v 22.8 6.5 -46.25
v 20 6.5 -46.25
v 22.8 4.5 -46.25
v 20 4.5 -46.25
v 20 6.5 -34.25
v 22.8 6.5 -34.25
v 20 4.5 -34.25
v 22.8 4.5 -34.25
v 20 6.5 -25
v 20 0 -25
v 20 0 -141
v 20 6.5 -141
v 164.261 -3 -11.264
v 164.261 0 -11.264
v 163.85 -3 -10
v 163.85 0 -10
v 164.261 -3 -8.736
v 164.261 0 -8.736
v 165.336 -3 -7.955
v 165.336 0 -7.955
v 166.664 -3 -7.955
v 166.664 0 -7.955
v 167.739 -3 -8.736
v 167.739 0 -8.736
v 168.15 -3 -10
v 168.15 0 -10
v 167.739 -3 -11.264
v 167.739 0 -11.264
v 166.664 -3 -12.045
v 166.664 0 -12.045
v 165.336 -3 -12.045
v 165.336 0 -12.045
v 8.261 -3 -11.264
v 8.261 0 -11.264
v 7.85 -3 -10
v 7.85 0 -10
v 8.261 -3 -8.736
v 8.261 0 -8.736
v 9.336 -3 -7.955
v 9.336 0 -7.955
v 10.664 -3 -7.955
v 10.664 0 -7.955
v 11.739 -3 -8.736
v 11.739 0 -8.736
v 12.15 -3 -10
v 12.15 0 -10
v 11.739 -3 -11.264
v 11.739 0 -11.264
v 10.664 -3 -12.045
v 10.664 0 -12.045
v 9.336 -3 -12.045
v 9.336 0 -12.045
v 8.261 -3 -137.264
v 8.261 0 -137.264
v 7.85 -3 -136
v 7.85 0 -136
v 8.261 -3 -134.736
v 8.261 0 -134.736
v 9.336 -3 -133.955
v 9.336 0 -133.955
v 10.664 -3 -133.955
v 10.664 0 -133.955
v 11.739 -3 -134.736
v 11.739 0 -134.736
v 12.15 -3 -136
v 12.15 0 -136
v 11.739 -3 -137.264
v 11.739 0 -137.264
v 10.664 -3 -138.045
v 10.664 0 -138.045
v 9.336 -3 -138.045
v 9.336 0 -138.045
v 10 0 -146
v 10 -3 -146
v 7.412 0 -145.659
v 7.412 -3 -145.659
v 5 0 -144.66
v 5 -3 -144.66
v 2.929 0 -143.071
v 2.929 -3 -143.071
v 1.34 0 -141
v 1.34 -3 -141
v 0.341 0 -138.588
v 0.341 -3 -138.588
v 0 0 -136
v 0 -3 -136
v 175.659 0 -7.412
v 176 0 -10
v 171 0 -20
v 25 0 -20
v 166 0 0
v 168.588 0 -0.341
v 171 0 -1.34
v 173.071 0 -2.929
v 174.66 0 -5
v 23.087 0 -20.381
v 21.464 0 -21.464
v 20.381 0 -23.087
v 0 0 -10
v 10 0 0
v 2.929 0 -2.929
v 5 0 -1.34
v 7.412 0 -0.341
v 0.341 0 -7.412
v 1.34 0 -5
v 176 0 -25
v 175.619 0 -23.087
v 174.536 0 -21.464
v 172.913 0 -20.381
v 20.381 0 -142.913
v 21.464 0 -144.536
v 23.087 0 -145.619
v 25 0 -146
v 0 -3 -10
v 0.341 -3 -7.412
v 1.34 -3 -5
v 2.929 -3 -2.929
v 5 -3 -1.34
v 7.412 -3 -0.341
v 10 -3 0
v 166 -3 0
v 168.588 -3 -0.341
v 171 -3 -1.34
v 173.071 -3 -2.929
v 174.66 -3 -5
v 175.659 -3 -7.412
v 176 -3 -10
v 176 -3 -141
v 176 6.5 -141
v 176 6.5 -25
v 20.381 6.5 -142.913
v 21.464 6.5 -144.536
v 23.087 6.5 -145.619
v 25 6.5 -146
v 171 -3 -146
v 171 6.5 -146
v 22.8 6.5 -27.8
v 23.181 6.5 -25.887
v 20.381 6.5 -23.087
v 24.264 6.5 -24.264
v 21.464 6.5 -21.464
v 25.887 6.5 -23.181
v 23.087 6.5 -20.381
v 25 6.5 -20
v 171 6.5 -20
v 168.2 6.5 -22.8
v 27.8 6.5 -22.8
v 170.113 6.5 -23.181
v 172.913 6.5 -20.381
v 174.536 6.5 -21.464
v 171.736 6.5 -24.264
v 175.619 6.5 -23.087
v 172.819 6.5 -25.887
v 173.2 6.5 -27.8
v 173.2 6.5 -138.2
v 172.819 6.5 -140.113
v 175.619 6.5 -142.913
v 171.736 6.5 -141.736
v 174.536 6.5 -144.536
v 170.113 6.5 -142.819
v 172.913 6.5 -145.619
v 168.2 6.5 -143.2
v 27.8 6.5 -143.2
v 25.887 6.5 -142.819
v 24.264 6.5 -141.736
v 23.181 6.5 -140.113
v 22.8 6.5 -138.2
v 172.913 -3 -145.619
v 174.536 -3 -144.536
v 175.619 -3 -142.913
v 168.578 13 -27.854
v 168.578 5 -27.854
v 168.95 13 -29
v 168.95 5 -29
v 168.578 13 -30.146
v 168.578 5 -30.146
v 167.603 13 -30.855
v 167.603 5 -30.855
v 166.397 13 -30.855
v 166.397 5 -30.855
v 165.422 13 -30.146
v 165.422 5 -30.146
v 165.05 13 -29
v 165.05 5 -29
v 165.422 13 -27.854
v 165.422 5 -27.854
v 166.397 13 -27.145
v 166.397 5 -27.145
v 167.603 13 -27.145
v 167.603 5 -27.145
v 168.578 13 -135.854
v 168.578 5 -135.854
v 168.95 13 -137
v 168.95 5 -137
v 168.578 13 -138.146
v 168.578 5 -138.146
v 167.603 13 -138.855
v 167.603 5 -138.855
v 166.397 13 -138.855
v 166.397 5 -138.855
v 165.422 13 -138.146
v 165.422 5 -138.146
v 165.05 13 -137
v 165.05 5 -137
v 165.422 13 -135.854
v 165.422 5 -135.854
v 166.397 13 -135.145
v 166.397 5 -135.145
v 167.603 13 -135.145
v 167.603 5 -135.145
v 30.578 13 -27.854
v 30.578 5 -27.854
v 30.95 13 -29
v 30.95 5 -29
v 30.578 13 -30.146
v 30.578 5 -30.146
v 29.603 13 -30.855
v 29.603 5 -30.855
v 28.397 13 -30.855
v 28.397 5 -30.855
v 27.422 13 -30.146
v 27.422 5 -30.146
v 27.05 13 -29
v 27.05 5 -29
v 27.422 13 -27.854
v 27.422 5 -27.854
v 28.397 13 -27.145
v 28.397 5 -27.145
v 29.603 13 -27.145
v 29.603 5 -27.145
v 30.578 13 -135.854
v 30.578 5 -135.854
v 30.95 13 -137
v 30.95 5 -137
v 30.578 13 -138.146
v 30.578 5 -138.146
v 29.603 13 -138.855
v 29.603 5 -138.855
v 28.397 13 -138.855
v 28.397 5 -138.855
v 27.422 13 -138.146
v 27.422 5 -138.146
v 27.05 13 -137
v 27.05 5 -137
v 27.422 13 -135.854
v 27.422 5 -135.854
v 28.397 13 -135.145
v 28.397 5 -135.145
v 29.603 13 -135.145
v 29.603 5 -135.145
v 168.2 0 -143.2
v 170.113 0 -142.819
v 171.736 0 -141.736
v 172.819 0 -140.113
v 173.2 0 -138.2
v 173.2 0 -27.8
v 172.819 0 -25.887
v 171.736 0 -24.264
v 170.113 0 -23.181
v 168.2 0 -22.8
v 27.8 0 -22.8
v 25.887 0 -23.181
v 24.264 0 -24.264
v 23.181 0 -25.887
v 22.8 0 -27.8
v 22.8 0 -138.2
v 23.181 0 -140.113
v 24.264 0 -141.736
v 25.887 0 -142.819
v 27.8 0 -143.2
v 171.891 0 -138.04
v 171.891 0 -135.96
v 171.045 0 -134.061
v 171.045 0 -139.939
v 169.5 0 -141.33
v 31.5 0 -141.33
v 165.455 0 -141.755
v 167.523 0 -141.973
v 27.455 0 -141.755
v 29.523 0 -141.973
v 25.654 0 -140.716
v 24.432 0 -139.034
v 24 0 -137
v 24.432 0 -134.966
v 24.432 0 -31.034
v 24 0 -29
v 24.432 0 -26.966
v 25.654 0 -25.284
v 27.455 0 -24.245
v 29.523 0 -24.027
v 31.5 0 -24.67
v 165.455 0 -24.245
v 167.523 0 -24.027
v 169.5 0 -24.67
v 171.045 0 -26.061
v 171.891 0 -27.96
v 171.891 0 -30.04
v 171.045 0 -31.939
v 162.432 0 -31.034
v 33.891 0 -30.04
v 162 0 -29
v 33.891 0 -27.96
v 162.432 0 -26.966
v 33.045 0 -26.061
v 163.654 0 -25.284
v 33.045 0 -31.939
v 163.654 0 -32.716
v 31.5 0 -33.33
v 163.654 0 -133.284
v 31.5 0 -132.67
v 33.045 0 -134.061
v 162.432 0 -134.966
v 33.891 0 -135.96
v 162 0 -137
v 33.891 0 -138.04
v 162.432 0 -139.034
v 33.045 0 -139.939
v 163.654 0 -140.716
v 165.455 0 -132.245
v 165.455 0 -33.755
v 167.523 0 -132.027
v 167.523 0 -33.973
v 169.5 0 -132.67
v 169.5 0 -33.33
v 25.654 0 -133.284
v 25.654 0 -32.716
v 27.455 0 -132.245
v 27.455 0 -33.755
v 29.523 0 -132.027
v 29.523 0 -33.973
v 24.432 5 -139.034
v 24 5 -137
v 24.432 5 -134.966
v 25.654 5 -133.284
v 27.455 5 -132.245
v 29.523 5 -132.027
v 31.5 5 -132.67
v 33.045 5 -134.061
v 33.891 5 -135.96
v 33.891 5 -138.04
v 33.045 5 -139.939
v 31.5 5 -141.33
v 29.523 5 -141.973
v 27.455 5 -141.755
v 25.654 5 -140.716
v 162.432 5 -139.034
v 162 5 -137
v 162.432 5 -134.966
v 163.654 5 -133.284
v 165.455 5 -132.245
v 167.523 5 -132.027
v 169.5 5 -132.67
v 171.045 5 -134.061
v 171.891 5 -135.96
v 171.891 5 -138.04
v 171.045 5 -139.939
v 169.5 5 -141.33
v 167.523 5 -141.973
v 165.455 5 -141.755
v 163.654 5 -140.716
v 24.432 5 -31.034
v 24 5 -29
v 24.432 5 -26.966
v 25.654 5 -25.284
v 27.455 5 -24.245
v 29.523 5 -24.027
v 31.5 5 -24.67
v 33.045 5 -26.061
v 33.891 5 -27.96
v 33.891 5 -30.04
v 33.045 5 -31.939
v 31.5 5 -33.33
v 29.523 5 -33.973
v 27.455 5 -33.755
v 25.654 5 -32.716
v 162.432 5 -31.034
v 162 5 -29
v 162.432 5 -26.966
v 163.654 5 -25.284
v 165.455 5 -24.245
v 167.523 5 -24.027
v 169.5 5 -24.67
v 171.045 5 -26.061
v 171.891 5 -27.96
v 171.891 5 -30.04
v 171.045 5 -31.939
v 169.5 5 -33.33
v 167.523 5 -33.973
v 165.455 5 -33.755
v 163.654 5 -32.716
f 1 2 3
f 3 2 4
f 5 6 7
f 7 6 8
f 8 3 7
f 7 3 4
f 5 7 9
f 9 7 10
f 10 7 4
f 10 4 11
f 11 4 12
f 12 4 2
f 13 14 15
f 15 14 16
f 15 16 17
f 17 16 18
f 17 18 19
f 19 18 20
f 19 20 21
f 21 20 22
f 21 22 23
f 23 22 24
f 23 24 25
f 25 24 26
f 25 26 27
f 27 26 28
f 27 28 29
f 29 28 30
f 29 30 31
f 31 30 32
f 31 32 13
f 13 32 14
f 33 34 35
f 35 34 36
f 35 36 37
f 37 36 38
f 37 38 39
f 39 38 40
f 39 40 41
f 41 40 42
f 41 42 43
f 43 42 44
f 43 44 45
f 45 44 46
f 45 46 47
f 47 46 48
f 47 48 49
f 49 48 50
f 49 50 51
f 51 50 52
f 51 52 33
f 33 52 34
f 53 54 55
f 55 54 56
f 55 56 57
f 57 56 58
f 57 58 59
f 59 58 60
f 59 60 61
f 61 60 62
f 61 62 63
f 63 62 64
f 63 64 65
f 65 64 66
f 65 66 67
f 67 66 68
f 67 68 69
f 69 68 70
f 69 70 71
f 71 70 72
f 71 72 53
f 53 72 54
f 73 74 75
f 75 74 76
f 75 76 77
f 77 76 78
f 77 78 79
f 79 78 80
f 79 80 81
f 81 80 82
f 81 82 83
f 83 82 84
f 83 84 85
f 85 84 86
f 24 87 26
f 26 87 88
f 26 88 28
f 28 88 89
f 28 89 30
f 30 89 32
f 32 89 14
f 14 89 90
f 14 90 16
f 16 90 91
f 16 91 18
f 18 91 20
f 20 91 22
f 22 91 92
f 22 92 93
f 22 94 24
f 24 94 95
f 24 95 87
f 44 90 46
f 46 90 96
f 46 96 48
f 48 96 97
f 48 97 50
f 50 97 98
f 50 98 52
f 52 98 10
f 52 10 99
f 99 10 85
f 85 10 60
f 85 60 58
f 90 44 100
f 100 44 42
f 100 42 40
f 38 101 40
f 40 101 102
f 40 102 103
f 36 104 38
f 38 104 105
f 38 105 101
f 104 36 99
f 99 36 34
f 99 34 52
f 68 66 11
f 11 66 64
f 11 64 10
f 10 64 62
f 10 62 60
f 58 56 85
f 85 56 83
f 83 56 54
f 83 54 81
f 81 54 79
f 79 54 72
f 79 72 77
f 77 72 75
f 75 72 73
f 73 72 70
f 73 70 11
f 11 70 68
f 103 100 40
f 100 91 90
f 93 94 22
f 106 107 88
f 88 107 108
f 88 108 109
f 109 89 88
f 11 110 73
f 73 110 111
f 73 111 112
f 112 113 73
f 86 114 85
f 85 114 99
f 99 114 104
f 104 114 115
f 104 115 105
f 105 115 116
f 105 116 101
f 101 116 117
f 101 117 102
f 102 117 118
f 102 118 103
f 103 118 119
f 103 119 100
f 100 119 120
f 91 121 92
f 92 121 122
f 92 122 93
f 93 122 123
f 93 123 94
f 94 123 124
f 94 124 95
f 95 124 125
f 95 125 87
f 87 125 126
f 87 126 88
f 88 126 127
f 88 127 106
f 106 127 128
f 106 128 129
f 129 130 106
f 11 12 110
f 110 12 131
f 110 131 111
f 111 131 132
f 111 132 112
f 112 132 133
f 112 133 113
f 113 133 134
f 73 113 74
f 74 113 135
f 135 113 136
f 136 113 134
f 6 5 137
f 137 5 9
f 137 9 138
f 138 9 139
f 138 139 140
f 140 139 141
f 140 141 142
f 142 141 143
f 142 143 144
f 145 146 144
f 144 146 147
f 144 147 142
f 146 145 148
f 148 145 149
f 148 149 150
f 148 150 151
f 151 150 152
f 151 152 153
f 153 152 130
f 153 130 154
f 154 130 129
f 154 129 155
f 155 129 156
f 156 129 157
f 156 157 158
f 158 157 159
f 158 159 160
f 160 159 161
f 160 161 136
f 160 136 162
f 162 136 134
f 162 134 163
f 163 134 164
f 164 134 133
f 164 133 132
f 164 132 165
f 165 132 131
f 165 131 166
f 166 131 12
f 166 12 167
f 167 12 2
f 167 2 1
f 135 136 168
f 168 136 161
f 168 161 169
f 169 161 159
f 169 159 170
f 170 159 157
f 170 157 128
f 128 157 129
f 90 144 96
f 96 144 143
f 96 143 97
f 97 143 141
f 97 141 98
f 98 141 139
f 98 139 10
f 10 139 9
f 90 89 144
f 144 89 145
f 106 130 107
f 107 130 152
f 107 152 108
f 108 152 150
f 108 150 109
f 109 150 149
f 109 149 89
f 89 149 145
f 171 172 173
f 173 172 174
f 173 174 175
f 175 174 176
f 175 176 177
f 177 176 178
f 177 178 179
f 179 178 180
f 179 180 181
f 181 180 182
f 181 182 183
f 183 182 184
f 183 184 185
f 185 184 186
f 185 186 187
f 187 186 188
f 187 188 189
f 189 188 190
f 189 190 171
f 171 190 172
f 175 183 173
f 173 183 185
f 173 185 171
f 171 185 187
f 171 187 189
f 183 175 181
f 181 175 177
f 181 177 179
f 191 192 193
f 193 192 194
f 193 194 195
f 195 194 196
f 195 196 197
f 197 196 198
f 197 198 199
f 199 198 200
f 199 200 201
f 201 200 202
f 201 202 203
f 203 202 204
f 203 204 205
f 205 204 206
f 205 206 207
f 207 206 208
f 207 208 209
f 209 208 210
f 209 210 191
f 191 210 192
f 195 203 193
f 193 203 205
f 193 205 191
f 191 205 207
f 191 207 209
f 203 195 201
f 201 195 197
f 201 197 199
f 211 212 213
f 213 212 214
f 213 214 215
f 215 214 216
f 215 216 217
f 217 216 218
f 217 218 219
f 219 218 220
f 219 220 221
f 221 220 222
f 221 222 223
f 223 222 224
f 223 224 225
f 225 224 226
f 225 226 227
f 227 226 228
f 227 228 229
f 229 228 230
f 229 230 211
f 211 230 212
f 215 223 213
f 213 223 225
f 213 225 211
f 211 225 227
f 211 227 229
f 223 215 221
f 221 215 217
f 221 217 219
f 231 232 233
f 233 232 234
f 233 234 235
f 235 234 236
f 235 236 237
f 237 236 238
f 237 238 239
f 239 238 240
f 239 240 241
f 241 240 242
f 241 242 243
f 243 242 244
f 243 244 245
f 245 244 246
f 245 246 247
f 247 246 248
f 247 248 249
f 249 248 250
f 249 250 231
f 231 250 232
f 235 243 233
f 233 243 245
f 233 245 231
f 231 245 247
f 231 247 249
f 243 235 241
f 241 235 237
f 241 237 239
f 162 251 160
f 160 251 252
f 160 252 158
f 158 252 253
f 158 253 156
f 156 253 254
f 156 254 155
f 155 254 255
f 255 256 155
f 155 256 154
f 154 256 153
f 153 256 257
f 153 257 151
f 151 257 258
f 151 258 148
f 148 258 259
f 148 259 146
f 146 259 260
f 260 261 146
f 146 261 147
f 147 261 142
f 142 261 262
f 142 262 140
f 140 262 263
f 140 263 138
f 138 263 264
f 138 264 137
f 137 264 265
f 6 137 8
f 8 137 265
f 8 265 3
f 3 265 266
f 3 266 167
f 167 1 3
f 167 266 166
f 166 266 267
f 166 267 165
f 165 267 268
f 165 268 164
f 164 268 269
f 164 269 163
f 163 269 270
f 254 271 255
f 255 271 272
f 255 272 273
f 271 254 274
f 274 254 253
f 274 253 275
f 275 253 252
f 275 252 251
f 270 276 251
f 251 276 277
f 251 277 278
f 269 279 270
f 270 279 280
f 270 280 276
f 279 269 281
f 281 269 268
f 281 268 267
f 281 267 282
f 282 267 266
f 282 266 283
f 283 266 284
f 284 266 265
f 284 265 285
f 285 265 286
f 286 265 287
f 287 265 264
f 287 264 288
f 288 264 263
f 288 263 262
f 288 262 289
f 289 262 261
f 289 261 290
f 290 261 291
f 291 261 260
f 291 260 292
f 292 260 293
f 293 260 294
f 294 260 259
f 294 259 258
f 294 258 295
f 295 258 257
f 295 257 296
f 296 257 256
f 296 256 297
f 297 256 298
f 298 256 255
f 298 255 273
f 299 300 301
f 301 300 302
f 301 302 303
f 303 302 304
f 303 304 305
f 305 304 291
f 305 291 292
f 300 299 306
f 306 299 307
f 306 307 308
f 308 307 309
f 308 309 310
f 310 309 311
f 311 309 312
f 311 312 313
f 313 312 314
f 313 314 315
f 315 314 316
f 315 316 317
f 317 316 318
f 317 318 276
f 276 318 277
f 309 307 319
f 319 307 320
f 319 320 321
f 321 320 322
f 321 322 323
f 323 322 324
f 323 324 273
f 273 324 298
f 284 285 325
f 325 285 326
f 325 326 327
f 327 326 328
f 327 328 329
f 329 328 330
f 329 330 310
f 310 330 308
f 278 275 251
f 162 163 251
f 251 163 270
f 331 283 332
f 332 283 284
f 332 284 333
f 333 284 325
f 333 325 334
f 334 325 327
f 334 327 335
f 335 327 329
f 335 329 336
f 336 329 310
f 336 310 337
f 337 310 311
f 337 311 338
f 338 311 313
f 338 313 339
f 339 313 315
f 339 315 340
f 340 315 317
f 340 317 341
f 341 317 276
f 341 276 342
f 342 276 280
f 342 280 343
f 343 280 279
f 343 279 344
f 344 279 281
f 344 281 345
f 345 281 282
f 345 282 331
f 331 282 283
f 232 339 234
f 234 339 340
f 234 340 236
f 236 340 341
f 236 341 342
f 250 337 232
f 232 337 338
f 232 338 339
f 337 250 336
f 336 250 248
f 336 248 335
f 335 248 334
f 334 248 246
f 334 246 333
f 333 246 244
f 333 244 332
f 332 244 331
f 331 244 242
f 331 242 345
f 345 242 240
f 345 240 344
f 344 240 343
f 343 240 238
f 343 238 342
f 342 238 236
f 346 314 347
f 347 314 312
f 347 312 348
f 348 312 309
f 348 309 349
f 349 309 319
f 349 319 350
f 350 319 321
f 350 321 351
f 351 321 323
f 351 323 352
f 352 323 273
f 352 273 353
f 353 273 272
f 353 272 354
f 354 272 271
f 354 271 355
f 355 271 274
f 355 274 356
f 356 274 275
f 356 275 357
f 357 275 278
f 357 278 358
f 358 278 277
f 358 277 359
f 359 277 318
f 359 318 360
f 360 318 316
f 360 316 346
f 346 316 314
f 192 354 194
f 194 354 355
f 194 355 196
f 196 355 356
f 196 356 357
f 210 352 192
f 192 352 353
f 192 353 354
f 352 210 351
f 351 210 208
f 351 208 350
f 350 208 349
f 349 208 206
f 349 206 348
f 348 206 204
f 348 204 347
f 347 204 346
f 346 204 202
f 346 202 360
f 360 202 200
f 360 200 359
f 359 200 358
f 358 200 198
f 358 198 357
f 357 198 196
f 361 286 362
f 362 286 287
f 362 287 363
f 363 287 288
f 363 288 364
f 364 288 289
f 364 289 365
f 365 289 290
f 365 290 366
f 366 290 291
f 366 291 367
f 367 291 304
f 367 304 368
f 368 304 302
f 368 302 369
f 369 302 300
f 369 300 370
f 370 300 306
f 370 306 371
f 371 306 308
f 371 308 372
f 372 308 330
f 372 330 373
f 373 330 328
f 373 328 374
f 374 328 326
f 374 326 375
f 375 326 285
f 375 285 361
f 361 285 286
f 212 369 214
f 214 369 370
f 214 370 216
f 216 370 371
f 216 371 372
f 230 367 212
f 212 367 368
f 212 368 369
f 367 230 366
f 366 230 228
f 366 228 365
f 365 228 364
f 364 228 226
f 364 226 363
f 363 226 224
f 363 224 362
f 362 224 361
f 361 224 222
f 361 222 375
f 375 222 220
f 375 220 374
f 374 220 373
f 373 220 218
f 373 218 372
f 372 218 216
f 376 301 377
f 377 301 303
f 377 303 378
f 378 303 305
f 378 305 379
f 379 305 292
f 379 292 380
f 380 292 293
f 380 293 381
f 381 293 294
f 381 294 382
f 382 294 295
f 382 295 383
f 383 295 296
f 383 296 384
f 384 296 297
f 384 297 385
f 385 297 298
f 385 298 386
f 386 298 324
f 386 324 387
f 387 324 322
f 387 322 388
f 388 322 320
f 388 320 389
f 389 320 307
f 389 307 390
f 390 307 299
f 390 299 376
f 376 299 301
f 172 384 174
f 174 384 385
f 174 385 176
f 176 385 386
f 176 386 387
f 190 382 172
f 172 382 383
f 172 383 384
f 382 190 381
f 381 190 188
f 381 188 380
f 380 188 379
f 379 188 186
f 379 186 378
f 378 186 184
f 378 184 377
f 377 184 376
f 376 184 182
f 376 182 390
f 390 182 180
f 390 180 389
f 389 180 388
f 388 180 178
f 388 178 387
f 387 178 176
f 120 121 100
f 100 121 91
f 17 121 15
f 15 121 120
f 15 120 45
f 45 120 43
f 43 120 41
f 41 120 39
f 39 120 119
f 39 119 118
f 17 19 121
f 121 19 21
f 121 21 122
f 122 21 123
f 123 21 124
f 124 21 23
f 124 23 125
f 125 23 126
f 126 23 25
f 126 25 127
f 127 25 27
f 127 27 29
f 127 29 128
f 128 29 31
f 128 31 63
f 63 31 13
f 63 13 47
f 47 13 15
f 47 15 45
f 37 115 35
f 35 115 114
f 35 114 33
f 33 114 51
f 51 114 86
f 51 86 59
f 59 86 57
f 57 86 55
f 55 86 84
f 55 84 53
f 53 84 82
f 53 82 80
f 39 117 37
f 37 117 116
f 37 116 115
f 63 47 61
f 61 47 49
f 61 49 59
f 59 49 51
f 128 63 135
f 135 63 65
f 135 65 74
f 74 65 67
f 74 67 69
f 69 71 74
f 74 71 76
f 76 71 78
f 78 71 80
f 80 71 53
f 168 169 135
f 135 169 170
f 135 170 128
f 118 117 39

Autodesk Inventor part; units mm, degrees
ref_plane "YZ Plane" through (0, 0, 0) normal (1, 0, 0) x (0, 1, 0)
ref_plane "XZ Plane" through (0, 0, 0) normal (0, 1, 0) x (-1, 0, 0)
ref_plane "XY Plane" through (0, 0, 0) normal (0, 0, 1) x (1, 0, 0)
sketch "Sketch1" plane through (0, 0, 0) normal (0, 1, 0) x (-1, 0, 0)
  line L0 (0, 0) -> (-176, 0)
  line L1 (-176, 0) -> (-176, -146)
  line L2 (-176, -146) -> (0, -146)
  line L3 (0, -146) -> (0, 0)
  line L4 (0, 0) -> (-176, 0)
  line L5 (-176, 0) -> (-176, -20)
  line L6 (-176, -20) -> (0, -20)
  line L7 (0, -20) -> (0, 0)
  line L8 (0, -146) -> (-20, -146)
  line L9 (-20, -146) -> (-20, 0)
  line L10 (-20, 0) -> (0, 0)
  line L11 (0, 0) -> (0, -146)
  line L12 (-20, -146) -> (-176, -146)
  line L13 (-176, -146) -> (-176, -143)
  line L14 (-176, -143) -> (-20, -143)
  line L15 (-20, -143) -> (-20, -146)
  line L16 (-20, -146) -> (-23, -146)
  line L17 (-23, -146) -> (-23, -20)
  line L18 (-23, -20) -> (-20, -20)
  line L19 (-20, -20) -> (-20, -146)
  line L20 (-20, -20) -> (-176, -20)
  line L21 (-176, -20) -> (-176, -23)
  line L22 (-176, -23) -> (-20, -23)
  line L23 (-20, -23) -> (-20, -20)
  line L24 (-176, -20) -> (-173, -20)
  line L25 (-173, -20) -> (-173, -146)
  line L26 (-173, -146) -> (-176, -146)
  line L27 (-176, -146) -> (-176, -20)
  line L28 (-20, -146) -> (-176, -146)
  line L29 (-176, -146) -> (-176, -143.2)
  line L30 (-176, -143.2) -> (-20, -143.2)
  line L31 (-20, -143.2) -> (-20, -146)
  line L32 (-176, -146) -> (-173.2, -146)
  line L33 (-173.2, -146) -> (-173.2, -20)
  line L34 (-173.2, -20) -> (-176, -20)
  line L35 (-176, -20) -> (-176, -146)
  line L36 (-176, -20) -> (-20, -20)
  line L37 (-20, -20) -> (-20, -22.8)
  line L38 (-20, -22.8) -> (-176, -22.8)
  line L39 (-176, -22.8) -> (-176, -20)
  line L40 (-20, -20) -> (-22.8, -20)
  line L41 (-22.8, -20) -> (-22.8, -146)
  line L42 (-22.8, -146) -> (-20, -146)
  line L43 (-20, -146) -> (-20, -20)
  line L44 (-23, -143) -> (-29, -143)
  line L45 (-29, -143) -> (-29, -137)
  line L46 (-29, -137) -> (-23, -137)
  line L47 (-23, -137) -> (-23, -143)
  line L48 (-173, -143) -> (-167, -143)
  line L49 (-167, -143) -> (-167, -137)
  line L50 (-167, -137) -> (-173, -137)
  line L51 (-173, -137) -> (-173, -143)
  line L52 (-173, -23) -> (-167, -23)
  line L53 (-167, -23) -> (-167, -29)
  line L54 (-167, -29) -> (-173, -29)
  line L55 (-173, -29) -> (-173, -23)
  line L56 (-23, -23) -> (-29, -23)
  line L57 (-29, -23) -> (-29, -29)
  line L58 (-29, -29) -> (-23, -29)
  line L59 (-23, -29) -> (-23, -23)
  line L60 (-23, -143) -> (-173, -143)
  line L61 (-173, -143) -> (-173, -23)
  line L62 (-173, -23) -> (-23, -23)
  line L63 (-23, -23) -> (-23, -143)
  circle A0 centre (-29, -137) radius 5
  circle A1 centre (-167, -137) radius 5
  circle A2 centre (-167, -29) radius 5
  circle A3 centre (-29, -29) radius 5
  line L64 (-22.8, -143.2) -> (-27.8, -143.2)
  line L65 (-27.8, -143.2) -> (-27.8, -138.2)
  line L66 (-27.8, -138.2) -> (-22.8, -138.2)
  line L67 (-22.8, -138.2) -> (-22.8, -143.2)
  line L68 (-173.2, -143.2) -> (-168.2, -143.2)
  line L69 (-168.2, -143.2) -> (-168.2, -138.2)
  line L70 (-168.2, -138.2) -> (-173.2, -138.2)
  line L71 (-173.2, -138.2) -> (-173.2, -143.2)
  line L72 (-173.2, -22.8) -> (-168.2, -22.8)
  line L73 (-168.2, -22.8) -> (-168.2, -27.8)
  line L74 (-168.2, -27.8) -> (-173.2, -27.8)
  line L75 (-173.2, -27.8) -> (-173.2, -22.8)
  line L76 (-22.8, -22.8) -> (-27.8, -22.8)
  line L77 (-27.8, -22.8) -> (-27.8, -27.8)
  line L78 (-27.8, -27.8) -> (-22.8, -27.8)
  line L79 (-22.8, -27.8) -> (-22.8, -22.8)
  circle A4 centre (-27.8, -138.2) radius 5
  circle A5 centre (-168.2, -138.2) radius 5
  circle A6 centre (-168.2, -27.8) radius 5
  circle A7 centre (-27.8, -27.8) radius 5
  dimension "d4" = 176
  dimension "d5" = 146
  dimension "d6" = 20
  dimension "d7" = 20
  dimension "d8" = 3
  dimension "d9" = 3
  dimension "d10" = 3
  dimension "d11" = 3
  dimension "d12" = 2.8
  dimension "d13" = 2.8
  dimension "d14" = 2.8
  dimension "d15" = 2.8
  dimension "d16" = 6
  dimension "d17" = 6
  dimension "d18" = 6
  dimension "d19" = 6
  dimension "d20" = 6
  dimension "d21" = 6
  dimension "d22" = 6
  dimension "d23" = 6
  dimension "d24" = 10
  dimension "d25" = 10
  dimension "d26" = 10
  dimension "d27" = 10
  dimension "d28" = 5
  dimension "d29" = 5
  dimension "d30" = 5
  dimension "d31" = 5
  dimension "d32" = 5
  dimension "d33" = 5
  dimension "d34" = 5
  dimension "d35" = 5
extrude "Extrusion1" add sketch "Sketch1" against normal blind 3
extrude "Extrusion2" add sketch "Sketch1" along normal blind 5 contours L77 L78 A3 L58 L57 | A3 L78 L77 | A7 A3 | A3 L57 L58 A7 | L74 L73 A2 L53 L54 | A2 L73 L74 | A6 A2 | A2 L54 L53 A6 | L66 L65 A0 L45 L46 | A0 L65 L66 | A4 A0 | A0 L46 L45 A4 | L70 L69 A1 | A1 L50 L49 L69 L70 | A5 A1 L49 L50 | A1 A5
extrude "Extrusion4" add sketch "Sketch1" along normal blind 6.5 contours L9 L38 L41 L6 | L6 L33 L38 L1 | L41 L38 L17 L6 | L9 L22 L41 L38 | L2 L41 L30 L9 | L38 L33 L22 L1 | L6 L25 L38 L33 | L17 L38 L25 L6 | L9 L14 L41 L22 | L2 L17 L30 L41 | L30 L41 L14 L9 | L22 L33 L14 L1 | L2 L25 L30 L17 | L14 L33 L30 L1 | L2 L33 L30 L25 | L30 L33 L2 L1
fillet "Fillet1" radius 5 4 edges at (22.8, 3.25, -143.2) (22.8, 3.25, -22.8) (173.2, 3.25, -22.8) (173.2, 3.25, -143.2)
sketch "Sketch2" plane through (29, 5, -137) normal (0, 1, 0) x (1, 0, 0)
  circle A0 centre (0, 0) radius 1.95
  circle A1 centre (138, 0) radius 5 projected
  circle A2 centre (138, 0) radius 1.95
  circle A3 centre (138, -108) radius 5 projected
  circle A4 centre (138, -108) radius 1.95
  circle A5 centre (0, -108) radius 5 projected
  circle A6 centre (0, -108) radius 1.95
  point P0 (-29, -137)
  dimension "d45" = 3.9
  dimension "d46" = 3.9
  dimension "d47" = 3.9
  dimension "d48" = 3.9
extrude "Extrusion5" add sketch "Sketch2" along normal blind 8 contours A0 | A2 | A4 | A6
fillet "Fillet2" radius 5 4 edges at (176, 3.25, -20) (20, 3.25, -20) (176, 1.75, -146) (20, 3.25, -146)
fillet "Fillet3" radius 10 3 edges at (176, -1.5, 0) (0, -1.5, 0) (0, -1.5, -146)
sketch "Sketch3" plane through (0, 0, 0) normal (0, 1, 0) x (1, 0, 0)
  line L0 (25, 146) -> (10, 146) projected
  line L1 (0, 0) -> (20, 0)
  line L2 (20, 0) -> (20, 146)
  line L3 (20, 146) -> (0, 146)
  line L4 (0, 146) -> (0, 0)
  line L5 (176, 10) -> (176, 25) projected
  line L6 (0, 0) -> (176, 0)
  line L7 (176, 0) -> (176, 20)
  line L8 (176, 20) -> (0, 20)
  line L9 (0, 20) -> (0, 0)
  line L10 (20, 20) -> (0, 0)
  line L11 (20, 0) -> (0, 20)
  line L12 (176, 0) -> (156, 0)
  line L13 (156, 0) -> (156, 20)
  line L14 (156, 20) -> (176, 20)
  line L15 (176, 20) -> (176, 0)
  line L16 (0, 146) -> (20, 146)
  line L17 (20, 146) -> (20, 126)
  line L18 (20, 126) -> (0, 126)
  line L19 (0, 126) -> (0, 146)
  line L20 (20, 126) -> (0, 146)
  line L21 (20, 146) -> (0, 126)
  line L22 (176, 0) -> (156, 20)
  line L23 (156, 0) -> (176, 20)
  line L24 (166, 10) -> (10, 10)
  line L25 (10, 136) -> (10, 10)
  circle A0 centre (10, 136) radius 2.15
  circle A1 centre (10, 10) radius 2.15
  circle A2 centre (166, 10) radius 2.15
  dimension "d53" = 20
  dimension "d54" = 20
  dimension "d55" = 20
  dimension "d56" = 20
  dimension "d57" = 4.3
  dimension "d58" = 4.3
  dimension "d59" = 4.3
extrude "Extrusion6" cut sketch "Sketch3" against normal blind 8 contours A0 L20 L21 | L21 L20 A0 | A0 L25 L20 | L21 A0 L20 | L25 A0 L21 | A1 L24 L10 | L10 L25 A1 | A1 L11 L24 | A2 L23 L22 | L22 L24 A2 | L25 L11 A1 | L11 A1 L10 | L10 A1 L11 | L24 L23 A2 | A2 L22 L23 | L22 A2 L23
sketch "Sketch4" plane through (0, 6.5, 0) normal (0, 1, 0) x (1, 0, 0)
  arc A0 (20, 25) -> (25, 20) centre (25, 25) ccw projected
  line L0 (25, 20) -> (20, 20)
  line L1 (20, 20) -> (20, 25)
  line L2 (20, 25) -> (25, 25)
  line L3 (25, 25) -> (25, 20)
  line L4 (22.8, 27.8) -> (22.8, 138.2) projected
  line L5 (20, 20) -> (22.8, 20)
  line L6 (22.8, 20) -> (22.8, 34.25)
  line L7 (22.8, 34.25) -> (20, 34.25)
  line L8 (20, 34.25) -> (20, 20)
  line L9 (20, 34.25) -> (22.8, 34.25)
  line L10 (22.8, 34.25) -> (22.8, 46.25)
  line L11 (22.8, 46.25) -> (20, 46.25)
  line L12 (20, 46.25) -> (20, 34.25)
  point P0 (0, 0)
  dimension "d62" = 14.25
  dimension "d63" = 12
extrude "Extrusion7" cut sketch "Sketch4" against normal blind 2 contours L12 L11 L4 L7
properties part number "BottomCase"
